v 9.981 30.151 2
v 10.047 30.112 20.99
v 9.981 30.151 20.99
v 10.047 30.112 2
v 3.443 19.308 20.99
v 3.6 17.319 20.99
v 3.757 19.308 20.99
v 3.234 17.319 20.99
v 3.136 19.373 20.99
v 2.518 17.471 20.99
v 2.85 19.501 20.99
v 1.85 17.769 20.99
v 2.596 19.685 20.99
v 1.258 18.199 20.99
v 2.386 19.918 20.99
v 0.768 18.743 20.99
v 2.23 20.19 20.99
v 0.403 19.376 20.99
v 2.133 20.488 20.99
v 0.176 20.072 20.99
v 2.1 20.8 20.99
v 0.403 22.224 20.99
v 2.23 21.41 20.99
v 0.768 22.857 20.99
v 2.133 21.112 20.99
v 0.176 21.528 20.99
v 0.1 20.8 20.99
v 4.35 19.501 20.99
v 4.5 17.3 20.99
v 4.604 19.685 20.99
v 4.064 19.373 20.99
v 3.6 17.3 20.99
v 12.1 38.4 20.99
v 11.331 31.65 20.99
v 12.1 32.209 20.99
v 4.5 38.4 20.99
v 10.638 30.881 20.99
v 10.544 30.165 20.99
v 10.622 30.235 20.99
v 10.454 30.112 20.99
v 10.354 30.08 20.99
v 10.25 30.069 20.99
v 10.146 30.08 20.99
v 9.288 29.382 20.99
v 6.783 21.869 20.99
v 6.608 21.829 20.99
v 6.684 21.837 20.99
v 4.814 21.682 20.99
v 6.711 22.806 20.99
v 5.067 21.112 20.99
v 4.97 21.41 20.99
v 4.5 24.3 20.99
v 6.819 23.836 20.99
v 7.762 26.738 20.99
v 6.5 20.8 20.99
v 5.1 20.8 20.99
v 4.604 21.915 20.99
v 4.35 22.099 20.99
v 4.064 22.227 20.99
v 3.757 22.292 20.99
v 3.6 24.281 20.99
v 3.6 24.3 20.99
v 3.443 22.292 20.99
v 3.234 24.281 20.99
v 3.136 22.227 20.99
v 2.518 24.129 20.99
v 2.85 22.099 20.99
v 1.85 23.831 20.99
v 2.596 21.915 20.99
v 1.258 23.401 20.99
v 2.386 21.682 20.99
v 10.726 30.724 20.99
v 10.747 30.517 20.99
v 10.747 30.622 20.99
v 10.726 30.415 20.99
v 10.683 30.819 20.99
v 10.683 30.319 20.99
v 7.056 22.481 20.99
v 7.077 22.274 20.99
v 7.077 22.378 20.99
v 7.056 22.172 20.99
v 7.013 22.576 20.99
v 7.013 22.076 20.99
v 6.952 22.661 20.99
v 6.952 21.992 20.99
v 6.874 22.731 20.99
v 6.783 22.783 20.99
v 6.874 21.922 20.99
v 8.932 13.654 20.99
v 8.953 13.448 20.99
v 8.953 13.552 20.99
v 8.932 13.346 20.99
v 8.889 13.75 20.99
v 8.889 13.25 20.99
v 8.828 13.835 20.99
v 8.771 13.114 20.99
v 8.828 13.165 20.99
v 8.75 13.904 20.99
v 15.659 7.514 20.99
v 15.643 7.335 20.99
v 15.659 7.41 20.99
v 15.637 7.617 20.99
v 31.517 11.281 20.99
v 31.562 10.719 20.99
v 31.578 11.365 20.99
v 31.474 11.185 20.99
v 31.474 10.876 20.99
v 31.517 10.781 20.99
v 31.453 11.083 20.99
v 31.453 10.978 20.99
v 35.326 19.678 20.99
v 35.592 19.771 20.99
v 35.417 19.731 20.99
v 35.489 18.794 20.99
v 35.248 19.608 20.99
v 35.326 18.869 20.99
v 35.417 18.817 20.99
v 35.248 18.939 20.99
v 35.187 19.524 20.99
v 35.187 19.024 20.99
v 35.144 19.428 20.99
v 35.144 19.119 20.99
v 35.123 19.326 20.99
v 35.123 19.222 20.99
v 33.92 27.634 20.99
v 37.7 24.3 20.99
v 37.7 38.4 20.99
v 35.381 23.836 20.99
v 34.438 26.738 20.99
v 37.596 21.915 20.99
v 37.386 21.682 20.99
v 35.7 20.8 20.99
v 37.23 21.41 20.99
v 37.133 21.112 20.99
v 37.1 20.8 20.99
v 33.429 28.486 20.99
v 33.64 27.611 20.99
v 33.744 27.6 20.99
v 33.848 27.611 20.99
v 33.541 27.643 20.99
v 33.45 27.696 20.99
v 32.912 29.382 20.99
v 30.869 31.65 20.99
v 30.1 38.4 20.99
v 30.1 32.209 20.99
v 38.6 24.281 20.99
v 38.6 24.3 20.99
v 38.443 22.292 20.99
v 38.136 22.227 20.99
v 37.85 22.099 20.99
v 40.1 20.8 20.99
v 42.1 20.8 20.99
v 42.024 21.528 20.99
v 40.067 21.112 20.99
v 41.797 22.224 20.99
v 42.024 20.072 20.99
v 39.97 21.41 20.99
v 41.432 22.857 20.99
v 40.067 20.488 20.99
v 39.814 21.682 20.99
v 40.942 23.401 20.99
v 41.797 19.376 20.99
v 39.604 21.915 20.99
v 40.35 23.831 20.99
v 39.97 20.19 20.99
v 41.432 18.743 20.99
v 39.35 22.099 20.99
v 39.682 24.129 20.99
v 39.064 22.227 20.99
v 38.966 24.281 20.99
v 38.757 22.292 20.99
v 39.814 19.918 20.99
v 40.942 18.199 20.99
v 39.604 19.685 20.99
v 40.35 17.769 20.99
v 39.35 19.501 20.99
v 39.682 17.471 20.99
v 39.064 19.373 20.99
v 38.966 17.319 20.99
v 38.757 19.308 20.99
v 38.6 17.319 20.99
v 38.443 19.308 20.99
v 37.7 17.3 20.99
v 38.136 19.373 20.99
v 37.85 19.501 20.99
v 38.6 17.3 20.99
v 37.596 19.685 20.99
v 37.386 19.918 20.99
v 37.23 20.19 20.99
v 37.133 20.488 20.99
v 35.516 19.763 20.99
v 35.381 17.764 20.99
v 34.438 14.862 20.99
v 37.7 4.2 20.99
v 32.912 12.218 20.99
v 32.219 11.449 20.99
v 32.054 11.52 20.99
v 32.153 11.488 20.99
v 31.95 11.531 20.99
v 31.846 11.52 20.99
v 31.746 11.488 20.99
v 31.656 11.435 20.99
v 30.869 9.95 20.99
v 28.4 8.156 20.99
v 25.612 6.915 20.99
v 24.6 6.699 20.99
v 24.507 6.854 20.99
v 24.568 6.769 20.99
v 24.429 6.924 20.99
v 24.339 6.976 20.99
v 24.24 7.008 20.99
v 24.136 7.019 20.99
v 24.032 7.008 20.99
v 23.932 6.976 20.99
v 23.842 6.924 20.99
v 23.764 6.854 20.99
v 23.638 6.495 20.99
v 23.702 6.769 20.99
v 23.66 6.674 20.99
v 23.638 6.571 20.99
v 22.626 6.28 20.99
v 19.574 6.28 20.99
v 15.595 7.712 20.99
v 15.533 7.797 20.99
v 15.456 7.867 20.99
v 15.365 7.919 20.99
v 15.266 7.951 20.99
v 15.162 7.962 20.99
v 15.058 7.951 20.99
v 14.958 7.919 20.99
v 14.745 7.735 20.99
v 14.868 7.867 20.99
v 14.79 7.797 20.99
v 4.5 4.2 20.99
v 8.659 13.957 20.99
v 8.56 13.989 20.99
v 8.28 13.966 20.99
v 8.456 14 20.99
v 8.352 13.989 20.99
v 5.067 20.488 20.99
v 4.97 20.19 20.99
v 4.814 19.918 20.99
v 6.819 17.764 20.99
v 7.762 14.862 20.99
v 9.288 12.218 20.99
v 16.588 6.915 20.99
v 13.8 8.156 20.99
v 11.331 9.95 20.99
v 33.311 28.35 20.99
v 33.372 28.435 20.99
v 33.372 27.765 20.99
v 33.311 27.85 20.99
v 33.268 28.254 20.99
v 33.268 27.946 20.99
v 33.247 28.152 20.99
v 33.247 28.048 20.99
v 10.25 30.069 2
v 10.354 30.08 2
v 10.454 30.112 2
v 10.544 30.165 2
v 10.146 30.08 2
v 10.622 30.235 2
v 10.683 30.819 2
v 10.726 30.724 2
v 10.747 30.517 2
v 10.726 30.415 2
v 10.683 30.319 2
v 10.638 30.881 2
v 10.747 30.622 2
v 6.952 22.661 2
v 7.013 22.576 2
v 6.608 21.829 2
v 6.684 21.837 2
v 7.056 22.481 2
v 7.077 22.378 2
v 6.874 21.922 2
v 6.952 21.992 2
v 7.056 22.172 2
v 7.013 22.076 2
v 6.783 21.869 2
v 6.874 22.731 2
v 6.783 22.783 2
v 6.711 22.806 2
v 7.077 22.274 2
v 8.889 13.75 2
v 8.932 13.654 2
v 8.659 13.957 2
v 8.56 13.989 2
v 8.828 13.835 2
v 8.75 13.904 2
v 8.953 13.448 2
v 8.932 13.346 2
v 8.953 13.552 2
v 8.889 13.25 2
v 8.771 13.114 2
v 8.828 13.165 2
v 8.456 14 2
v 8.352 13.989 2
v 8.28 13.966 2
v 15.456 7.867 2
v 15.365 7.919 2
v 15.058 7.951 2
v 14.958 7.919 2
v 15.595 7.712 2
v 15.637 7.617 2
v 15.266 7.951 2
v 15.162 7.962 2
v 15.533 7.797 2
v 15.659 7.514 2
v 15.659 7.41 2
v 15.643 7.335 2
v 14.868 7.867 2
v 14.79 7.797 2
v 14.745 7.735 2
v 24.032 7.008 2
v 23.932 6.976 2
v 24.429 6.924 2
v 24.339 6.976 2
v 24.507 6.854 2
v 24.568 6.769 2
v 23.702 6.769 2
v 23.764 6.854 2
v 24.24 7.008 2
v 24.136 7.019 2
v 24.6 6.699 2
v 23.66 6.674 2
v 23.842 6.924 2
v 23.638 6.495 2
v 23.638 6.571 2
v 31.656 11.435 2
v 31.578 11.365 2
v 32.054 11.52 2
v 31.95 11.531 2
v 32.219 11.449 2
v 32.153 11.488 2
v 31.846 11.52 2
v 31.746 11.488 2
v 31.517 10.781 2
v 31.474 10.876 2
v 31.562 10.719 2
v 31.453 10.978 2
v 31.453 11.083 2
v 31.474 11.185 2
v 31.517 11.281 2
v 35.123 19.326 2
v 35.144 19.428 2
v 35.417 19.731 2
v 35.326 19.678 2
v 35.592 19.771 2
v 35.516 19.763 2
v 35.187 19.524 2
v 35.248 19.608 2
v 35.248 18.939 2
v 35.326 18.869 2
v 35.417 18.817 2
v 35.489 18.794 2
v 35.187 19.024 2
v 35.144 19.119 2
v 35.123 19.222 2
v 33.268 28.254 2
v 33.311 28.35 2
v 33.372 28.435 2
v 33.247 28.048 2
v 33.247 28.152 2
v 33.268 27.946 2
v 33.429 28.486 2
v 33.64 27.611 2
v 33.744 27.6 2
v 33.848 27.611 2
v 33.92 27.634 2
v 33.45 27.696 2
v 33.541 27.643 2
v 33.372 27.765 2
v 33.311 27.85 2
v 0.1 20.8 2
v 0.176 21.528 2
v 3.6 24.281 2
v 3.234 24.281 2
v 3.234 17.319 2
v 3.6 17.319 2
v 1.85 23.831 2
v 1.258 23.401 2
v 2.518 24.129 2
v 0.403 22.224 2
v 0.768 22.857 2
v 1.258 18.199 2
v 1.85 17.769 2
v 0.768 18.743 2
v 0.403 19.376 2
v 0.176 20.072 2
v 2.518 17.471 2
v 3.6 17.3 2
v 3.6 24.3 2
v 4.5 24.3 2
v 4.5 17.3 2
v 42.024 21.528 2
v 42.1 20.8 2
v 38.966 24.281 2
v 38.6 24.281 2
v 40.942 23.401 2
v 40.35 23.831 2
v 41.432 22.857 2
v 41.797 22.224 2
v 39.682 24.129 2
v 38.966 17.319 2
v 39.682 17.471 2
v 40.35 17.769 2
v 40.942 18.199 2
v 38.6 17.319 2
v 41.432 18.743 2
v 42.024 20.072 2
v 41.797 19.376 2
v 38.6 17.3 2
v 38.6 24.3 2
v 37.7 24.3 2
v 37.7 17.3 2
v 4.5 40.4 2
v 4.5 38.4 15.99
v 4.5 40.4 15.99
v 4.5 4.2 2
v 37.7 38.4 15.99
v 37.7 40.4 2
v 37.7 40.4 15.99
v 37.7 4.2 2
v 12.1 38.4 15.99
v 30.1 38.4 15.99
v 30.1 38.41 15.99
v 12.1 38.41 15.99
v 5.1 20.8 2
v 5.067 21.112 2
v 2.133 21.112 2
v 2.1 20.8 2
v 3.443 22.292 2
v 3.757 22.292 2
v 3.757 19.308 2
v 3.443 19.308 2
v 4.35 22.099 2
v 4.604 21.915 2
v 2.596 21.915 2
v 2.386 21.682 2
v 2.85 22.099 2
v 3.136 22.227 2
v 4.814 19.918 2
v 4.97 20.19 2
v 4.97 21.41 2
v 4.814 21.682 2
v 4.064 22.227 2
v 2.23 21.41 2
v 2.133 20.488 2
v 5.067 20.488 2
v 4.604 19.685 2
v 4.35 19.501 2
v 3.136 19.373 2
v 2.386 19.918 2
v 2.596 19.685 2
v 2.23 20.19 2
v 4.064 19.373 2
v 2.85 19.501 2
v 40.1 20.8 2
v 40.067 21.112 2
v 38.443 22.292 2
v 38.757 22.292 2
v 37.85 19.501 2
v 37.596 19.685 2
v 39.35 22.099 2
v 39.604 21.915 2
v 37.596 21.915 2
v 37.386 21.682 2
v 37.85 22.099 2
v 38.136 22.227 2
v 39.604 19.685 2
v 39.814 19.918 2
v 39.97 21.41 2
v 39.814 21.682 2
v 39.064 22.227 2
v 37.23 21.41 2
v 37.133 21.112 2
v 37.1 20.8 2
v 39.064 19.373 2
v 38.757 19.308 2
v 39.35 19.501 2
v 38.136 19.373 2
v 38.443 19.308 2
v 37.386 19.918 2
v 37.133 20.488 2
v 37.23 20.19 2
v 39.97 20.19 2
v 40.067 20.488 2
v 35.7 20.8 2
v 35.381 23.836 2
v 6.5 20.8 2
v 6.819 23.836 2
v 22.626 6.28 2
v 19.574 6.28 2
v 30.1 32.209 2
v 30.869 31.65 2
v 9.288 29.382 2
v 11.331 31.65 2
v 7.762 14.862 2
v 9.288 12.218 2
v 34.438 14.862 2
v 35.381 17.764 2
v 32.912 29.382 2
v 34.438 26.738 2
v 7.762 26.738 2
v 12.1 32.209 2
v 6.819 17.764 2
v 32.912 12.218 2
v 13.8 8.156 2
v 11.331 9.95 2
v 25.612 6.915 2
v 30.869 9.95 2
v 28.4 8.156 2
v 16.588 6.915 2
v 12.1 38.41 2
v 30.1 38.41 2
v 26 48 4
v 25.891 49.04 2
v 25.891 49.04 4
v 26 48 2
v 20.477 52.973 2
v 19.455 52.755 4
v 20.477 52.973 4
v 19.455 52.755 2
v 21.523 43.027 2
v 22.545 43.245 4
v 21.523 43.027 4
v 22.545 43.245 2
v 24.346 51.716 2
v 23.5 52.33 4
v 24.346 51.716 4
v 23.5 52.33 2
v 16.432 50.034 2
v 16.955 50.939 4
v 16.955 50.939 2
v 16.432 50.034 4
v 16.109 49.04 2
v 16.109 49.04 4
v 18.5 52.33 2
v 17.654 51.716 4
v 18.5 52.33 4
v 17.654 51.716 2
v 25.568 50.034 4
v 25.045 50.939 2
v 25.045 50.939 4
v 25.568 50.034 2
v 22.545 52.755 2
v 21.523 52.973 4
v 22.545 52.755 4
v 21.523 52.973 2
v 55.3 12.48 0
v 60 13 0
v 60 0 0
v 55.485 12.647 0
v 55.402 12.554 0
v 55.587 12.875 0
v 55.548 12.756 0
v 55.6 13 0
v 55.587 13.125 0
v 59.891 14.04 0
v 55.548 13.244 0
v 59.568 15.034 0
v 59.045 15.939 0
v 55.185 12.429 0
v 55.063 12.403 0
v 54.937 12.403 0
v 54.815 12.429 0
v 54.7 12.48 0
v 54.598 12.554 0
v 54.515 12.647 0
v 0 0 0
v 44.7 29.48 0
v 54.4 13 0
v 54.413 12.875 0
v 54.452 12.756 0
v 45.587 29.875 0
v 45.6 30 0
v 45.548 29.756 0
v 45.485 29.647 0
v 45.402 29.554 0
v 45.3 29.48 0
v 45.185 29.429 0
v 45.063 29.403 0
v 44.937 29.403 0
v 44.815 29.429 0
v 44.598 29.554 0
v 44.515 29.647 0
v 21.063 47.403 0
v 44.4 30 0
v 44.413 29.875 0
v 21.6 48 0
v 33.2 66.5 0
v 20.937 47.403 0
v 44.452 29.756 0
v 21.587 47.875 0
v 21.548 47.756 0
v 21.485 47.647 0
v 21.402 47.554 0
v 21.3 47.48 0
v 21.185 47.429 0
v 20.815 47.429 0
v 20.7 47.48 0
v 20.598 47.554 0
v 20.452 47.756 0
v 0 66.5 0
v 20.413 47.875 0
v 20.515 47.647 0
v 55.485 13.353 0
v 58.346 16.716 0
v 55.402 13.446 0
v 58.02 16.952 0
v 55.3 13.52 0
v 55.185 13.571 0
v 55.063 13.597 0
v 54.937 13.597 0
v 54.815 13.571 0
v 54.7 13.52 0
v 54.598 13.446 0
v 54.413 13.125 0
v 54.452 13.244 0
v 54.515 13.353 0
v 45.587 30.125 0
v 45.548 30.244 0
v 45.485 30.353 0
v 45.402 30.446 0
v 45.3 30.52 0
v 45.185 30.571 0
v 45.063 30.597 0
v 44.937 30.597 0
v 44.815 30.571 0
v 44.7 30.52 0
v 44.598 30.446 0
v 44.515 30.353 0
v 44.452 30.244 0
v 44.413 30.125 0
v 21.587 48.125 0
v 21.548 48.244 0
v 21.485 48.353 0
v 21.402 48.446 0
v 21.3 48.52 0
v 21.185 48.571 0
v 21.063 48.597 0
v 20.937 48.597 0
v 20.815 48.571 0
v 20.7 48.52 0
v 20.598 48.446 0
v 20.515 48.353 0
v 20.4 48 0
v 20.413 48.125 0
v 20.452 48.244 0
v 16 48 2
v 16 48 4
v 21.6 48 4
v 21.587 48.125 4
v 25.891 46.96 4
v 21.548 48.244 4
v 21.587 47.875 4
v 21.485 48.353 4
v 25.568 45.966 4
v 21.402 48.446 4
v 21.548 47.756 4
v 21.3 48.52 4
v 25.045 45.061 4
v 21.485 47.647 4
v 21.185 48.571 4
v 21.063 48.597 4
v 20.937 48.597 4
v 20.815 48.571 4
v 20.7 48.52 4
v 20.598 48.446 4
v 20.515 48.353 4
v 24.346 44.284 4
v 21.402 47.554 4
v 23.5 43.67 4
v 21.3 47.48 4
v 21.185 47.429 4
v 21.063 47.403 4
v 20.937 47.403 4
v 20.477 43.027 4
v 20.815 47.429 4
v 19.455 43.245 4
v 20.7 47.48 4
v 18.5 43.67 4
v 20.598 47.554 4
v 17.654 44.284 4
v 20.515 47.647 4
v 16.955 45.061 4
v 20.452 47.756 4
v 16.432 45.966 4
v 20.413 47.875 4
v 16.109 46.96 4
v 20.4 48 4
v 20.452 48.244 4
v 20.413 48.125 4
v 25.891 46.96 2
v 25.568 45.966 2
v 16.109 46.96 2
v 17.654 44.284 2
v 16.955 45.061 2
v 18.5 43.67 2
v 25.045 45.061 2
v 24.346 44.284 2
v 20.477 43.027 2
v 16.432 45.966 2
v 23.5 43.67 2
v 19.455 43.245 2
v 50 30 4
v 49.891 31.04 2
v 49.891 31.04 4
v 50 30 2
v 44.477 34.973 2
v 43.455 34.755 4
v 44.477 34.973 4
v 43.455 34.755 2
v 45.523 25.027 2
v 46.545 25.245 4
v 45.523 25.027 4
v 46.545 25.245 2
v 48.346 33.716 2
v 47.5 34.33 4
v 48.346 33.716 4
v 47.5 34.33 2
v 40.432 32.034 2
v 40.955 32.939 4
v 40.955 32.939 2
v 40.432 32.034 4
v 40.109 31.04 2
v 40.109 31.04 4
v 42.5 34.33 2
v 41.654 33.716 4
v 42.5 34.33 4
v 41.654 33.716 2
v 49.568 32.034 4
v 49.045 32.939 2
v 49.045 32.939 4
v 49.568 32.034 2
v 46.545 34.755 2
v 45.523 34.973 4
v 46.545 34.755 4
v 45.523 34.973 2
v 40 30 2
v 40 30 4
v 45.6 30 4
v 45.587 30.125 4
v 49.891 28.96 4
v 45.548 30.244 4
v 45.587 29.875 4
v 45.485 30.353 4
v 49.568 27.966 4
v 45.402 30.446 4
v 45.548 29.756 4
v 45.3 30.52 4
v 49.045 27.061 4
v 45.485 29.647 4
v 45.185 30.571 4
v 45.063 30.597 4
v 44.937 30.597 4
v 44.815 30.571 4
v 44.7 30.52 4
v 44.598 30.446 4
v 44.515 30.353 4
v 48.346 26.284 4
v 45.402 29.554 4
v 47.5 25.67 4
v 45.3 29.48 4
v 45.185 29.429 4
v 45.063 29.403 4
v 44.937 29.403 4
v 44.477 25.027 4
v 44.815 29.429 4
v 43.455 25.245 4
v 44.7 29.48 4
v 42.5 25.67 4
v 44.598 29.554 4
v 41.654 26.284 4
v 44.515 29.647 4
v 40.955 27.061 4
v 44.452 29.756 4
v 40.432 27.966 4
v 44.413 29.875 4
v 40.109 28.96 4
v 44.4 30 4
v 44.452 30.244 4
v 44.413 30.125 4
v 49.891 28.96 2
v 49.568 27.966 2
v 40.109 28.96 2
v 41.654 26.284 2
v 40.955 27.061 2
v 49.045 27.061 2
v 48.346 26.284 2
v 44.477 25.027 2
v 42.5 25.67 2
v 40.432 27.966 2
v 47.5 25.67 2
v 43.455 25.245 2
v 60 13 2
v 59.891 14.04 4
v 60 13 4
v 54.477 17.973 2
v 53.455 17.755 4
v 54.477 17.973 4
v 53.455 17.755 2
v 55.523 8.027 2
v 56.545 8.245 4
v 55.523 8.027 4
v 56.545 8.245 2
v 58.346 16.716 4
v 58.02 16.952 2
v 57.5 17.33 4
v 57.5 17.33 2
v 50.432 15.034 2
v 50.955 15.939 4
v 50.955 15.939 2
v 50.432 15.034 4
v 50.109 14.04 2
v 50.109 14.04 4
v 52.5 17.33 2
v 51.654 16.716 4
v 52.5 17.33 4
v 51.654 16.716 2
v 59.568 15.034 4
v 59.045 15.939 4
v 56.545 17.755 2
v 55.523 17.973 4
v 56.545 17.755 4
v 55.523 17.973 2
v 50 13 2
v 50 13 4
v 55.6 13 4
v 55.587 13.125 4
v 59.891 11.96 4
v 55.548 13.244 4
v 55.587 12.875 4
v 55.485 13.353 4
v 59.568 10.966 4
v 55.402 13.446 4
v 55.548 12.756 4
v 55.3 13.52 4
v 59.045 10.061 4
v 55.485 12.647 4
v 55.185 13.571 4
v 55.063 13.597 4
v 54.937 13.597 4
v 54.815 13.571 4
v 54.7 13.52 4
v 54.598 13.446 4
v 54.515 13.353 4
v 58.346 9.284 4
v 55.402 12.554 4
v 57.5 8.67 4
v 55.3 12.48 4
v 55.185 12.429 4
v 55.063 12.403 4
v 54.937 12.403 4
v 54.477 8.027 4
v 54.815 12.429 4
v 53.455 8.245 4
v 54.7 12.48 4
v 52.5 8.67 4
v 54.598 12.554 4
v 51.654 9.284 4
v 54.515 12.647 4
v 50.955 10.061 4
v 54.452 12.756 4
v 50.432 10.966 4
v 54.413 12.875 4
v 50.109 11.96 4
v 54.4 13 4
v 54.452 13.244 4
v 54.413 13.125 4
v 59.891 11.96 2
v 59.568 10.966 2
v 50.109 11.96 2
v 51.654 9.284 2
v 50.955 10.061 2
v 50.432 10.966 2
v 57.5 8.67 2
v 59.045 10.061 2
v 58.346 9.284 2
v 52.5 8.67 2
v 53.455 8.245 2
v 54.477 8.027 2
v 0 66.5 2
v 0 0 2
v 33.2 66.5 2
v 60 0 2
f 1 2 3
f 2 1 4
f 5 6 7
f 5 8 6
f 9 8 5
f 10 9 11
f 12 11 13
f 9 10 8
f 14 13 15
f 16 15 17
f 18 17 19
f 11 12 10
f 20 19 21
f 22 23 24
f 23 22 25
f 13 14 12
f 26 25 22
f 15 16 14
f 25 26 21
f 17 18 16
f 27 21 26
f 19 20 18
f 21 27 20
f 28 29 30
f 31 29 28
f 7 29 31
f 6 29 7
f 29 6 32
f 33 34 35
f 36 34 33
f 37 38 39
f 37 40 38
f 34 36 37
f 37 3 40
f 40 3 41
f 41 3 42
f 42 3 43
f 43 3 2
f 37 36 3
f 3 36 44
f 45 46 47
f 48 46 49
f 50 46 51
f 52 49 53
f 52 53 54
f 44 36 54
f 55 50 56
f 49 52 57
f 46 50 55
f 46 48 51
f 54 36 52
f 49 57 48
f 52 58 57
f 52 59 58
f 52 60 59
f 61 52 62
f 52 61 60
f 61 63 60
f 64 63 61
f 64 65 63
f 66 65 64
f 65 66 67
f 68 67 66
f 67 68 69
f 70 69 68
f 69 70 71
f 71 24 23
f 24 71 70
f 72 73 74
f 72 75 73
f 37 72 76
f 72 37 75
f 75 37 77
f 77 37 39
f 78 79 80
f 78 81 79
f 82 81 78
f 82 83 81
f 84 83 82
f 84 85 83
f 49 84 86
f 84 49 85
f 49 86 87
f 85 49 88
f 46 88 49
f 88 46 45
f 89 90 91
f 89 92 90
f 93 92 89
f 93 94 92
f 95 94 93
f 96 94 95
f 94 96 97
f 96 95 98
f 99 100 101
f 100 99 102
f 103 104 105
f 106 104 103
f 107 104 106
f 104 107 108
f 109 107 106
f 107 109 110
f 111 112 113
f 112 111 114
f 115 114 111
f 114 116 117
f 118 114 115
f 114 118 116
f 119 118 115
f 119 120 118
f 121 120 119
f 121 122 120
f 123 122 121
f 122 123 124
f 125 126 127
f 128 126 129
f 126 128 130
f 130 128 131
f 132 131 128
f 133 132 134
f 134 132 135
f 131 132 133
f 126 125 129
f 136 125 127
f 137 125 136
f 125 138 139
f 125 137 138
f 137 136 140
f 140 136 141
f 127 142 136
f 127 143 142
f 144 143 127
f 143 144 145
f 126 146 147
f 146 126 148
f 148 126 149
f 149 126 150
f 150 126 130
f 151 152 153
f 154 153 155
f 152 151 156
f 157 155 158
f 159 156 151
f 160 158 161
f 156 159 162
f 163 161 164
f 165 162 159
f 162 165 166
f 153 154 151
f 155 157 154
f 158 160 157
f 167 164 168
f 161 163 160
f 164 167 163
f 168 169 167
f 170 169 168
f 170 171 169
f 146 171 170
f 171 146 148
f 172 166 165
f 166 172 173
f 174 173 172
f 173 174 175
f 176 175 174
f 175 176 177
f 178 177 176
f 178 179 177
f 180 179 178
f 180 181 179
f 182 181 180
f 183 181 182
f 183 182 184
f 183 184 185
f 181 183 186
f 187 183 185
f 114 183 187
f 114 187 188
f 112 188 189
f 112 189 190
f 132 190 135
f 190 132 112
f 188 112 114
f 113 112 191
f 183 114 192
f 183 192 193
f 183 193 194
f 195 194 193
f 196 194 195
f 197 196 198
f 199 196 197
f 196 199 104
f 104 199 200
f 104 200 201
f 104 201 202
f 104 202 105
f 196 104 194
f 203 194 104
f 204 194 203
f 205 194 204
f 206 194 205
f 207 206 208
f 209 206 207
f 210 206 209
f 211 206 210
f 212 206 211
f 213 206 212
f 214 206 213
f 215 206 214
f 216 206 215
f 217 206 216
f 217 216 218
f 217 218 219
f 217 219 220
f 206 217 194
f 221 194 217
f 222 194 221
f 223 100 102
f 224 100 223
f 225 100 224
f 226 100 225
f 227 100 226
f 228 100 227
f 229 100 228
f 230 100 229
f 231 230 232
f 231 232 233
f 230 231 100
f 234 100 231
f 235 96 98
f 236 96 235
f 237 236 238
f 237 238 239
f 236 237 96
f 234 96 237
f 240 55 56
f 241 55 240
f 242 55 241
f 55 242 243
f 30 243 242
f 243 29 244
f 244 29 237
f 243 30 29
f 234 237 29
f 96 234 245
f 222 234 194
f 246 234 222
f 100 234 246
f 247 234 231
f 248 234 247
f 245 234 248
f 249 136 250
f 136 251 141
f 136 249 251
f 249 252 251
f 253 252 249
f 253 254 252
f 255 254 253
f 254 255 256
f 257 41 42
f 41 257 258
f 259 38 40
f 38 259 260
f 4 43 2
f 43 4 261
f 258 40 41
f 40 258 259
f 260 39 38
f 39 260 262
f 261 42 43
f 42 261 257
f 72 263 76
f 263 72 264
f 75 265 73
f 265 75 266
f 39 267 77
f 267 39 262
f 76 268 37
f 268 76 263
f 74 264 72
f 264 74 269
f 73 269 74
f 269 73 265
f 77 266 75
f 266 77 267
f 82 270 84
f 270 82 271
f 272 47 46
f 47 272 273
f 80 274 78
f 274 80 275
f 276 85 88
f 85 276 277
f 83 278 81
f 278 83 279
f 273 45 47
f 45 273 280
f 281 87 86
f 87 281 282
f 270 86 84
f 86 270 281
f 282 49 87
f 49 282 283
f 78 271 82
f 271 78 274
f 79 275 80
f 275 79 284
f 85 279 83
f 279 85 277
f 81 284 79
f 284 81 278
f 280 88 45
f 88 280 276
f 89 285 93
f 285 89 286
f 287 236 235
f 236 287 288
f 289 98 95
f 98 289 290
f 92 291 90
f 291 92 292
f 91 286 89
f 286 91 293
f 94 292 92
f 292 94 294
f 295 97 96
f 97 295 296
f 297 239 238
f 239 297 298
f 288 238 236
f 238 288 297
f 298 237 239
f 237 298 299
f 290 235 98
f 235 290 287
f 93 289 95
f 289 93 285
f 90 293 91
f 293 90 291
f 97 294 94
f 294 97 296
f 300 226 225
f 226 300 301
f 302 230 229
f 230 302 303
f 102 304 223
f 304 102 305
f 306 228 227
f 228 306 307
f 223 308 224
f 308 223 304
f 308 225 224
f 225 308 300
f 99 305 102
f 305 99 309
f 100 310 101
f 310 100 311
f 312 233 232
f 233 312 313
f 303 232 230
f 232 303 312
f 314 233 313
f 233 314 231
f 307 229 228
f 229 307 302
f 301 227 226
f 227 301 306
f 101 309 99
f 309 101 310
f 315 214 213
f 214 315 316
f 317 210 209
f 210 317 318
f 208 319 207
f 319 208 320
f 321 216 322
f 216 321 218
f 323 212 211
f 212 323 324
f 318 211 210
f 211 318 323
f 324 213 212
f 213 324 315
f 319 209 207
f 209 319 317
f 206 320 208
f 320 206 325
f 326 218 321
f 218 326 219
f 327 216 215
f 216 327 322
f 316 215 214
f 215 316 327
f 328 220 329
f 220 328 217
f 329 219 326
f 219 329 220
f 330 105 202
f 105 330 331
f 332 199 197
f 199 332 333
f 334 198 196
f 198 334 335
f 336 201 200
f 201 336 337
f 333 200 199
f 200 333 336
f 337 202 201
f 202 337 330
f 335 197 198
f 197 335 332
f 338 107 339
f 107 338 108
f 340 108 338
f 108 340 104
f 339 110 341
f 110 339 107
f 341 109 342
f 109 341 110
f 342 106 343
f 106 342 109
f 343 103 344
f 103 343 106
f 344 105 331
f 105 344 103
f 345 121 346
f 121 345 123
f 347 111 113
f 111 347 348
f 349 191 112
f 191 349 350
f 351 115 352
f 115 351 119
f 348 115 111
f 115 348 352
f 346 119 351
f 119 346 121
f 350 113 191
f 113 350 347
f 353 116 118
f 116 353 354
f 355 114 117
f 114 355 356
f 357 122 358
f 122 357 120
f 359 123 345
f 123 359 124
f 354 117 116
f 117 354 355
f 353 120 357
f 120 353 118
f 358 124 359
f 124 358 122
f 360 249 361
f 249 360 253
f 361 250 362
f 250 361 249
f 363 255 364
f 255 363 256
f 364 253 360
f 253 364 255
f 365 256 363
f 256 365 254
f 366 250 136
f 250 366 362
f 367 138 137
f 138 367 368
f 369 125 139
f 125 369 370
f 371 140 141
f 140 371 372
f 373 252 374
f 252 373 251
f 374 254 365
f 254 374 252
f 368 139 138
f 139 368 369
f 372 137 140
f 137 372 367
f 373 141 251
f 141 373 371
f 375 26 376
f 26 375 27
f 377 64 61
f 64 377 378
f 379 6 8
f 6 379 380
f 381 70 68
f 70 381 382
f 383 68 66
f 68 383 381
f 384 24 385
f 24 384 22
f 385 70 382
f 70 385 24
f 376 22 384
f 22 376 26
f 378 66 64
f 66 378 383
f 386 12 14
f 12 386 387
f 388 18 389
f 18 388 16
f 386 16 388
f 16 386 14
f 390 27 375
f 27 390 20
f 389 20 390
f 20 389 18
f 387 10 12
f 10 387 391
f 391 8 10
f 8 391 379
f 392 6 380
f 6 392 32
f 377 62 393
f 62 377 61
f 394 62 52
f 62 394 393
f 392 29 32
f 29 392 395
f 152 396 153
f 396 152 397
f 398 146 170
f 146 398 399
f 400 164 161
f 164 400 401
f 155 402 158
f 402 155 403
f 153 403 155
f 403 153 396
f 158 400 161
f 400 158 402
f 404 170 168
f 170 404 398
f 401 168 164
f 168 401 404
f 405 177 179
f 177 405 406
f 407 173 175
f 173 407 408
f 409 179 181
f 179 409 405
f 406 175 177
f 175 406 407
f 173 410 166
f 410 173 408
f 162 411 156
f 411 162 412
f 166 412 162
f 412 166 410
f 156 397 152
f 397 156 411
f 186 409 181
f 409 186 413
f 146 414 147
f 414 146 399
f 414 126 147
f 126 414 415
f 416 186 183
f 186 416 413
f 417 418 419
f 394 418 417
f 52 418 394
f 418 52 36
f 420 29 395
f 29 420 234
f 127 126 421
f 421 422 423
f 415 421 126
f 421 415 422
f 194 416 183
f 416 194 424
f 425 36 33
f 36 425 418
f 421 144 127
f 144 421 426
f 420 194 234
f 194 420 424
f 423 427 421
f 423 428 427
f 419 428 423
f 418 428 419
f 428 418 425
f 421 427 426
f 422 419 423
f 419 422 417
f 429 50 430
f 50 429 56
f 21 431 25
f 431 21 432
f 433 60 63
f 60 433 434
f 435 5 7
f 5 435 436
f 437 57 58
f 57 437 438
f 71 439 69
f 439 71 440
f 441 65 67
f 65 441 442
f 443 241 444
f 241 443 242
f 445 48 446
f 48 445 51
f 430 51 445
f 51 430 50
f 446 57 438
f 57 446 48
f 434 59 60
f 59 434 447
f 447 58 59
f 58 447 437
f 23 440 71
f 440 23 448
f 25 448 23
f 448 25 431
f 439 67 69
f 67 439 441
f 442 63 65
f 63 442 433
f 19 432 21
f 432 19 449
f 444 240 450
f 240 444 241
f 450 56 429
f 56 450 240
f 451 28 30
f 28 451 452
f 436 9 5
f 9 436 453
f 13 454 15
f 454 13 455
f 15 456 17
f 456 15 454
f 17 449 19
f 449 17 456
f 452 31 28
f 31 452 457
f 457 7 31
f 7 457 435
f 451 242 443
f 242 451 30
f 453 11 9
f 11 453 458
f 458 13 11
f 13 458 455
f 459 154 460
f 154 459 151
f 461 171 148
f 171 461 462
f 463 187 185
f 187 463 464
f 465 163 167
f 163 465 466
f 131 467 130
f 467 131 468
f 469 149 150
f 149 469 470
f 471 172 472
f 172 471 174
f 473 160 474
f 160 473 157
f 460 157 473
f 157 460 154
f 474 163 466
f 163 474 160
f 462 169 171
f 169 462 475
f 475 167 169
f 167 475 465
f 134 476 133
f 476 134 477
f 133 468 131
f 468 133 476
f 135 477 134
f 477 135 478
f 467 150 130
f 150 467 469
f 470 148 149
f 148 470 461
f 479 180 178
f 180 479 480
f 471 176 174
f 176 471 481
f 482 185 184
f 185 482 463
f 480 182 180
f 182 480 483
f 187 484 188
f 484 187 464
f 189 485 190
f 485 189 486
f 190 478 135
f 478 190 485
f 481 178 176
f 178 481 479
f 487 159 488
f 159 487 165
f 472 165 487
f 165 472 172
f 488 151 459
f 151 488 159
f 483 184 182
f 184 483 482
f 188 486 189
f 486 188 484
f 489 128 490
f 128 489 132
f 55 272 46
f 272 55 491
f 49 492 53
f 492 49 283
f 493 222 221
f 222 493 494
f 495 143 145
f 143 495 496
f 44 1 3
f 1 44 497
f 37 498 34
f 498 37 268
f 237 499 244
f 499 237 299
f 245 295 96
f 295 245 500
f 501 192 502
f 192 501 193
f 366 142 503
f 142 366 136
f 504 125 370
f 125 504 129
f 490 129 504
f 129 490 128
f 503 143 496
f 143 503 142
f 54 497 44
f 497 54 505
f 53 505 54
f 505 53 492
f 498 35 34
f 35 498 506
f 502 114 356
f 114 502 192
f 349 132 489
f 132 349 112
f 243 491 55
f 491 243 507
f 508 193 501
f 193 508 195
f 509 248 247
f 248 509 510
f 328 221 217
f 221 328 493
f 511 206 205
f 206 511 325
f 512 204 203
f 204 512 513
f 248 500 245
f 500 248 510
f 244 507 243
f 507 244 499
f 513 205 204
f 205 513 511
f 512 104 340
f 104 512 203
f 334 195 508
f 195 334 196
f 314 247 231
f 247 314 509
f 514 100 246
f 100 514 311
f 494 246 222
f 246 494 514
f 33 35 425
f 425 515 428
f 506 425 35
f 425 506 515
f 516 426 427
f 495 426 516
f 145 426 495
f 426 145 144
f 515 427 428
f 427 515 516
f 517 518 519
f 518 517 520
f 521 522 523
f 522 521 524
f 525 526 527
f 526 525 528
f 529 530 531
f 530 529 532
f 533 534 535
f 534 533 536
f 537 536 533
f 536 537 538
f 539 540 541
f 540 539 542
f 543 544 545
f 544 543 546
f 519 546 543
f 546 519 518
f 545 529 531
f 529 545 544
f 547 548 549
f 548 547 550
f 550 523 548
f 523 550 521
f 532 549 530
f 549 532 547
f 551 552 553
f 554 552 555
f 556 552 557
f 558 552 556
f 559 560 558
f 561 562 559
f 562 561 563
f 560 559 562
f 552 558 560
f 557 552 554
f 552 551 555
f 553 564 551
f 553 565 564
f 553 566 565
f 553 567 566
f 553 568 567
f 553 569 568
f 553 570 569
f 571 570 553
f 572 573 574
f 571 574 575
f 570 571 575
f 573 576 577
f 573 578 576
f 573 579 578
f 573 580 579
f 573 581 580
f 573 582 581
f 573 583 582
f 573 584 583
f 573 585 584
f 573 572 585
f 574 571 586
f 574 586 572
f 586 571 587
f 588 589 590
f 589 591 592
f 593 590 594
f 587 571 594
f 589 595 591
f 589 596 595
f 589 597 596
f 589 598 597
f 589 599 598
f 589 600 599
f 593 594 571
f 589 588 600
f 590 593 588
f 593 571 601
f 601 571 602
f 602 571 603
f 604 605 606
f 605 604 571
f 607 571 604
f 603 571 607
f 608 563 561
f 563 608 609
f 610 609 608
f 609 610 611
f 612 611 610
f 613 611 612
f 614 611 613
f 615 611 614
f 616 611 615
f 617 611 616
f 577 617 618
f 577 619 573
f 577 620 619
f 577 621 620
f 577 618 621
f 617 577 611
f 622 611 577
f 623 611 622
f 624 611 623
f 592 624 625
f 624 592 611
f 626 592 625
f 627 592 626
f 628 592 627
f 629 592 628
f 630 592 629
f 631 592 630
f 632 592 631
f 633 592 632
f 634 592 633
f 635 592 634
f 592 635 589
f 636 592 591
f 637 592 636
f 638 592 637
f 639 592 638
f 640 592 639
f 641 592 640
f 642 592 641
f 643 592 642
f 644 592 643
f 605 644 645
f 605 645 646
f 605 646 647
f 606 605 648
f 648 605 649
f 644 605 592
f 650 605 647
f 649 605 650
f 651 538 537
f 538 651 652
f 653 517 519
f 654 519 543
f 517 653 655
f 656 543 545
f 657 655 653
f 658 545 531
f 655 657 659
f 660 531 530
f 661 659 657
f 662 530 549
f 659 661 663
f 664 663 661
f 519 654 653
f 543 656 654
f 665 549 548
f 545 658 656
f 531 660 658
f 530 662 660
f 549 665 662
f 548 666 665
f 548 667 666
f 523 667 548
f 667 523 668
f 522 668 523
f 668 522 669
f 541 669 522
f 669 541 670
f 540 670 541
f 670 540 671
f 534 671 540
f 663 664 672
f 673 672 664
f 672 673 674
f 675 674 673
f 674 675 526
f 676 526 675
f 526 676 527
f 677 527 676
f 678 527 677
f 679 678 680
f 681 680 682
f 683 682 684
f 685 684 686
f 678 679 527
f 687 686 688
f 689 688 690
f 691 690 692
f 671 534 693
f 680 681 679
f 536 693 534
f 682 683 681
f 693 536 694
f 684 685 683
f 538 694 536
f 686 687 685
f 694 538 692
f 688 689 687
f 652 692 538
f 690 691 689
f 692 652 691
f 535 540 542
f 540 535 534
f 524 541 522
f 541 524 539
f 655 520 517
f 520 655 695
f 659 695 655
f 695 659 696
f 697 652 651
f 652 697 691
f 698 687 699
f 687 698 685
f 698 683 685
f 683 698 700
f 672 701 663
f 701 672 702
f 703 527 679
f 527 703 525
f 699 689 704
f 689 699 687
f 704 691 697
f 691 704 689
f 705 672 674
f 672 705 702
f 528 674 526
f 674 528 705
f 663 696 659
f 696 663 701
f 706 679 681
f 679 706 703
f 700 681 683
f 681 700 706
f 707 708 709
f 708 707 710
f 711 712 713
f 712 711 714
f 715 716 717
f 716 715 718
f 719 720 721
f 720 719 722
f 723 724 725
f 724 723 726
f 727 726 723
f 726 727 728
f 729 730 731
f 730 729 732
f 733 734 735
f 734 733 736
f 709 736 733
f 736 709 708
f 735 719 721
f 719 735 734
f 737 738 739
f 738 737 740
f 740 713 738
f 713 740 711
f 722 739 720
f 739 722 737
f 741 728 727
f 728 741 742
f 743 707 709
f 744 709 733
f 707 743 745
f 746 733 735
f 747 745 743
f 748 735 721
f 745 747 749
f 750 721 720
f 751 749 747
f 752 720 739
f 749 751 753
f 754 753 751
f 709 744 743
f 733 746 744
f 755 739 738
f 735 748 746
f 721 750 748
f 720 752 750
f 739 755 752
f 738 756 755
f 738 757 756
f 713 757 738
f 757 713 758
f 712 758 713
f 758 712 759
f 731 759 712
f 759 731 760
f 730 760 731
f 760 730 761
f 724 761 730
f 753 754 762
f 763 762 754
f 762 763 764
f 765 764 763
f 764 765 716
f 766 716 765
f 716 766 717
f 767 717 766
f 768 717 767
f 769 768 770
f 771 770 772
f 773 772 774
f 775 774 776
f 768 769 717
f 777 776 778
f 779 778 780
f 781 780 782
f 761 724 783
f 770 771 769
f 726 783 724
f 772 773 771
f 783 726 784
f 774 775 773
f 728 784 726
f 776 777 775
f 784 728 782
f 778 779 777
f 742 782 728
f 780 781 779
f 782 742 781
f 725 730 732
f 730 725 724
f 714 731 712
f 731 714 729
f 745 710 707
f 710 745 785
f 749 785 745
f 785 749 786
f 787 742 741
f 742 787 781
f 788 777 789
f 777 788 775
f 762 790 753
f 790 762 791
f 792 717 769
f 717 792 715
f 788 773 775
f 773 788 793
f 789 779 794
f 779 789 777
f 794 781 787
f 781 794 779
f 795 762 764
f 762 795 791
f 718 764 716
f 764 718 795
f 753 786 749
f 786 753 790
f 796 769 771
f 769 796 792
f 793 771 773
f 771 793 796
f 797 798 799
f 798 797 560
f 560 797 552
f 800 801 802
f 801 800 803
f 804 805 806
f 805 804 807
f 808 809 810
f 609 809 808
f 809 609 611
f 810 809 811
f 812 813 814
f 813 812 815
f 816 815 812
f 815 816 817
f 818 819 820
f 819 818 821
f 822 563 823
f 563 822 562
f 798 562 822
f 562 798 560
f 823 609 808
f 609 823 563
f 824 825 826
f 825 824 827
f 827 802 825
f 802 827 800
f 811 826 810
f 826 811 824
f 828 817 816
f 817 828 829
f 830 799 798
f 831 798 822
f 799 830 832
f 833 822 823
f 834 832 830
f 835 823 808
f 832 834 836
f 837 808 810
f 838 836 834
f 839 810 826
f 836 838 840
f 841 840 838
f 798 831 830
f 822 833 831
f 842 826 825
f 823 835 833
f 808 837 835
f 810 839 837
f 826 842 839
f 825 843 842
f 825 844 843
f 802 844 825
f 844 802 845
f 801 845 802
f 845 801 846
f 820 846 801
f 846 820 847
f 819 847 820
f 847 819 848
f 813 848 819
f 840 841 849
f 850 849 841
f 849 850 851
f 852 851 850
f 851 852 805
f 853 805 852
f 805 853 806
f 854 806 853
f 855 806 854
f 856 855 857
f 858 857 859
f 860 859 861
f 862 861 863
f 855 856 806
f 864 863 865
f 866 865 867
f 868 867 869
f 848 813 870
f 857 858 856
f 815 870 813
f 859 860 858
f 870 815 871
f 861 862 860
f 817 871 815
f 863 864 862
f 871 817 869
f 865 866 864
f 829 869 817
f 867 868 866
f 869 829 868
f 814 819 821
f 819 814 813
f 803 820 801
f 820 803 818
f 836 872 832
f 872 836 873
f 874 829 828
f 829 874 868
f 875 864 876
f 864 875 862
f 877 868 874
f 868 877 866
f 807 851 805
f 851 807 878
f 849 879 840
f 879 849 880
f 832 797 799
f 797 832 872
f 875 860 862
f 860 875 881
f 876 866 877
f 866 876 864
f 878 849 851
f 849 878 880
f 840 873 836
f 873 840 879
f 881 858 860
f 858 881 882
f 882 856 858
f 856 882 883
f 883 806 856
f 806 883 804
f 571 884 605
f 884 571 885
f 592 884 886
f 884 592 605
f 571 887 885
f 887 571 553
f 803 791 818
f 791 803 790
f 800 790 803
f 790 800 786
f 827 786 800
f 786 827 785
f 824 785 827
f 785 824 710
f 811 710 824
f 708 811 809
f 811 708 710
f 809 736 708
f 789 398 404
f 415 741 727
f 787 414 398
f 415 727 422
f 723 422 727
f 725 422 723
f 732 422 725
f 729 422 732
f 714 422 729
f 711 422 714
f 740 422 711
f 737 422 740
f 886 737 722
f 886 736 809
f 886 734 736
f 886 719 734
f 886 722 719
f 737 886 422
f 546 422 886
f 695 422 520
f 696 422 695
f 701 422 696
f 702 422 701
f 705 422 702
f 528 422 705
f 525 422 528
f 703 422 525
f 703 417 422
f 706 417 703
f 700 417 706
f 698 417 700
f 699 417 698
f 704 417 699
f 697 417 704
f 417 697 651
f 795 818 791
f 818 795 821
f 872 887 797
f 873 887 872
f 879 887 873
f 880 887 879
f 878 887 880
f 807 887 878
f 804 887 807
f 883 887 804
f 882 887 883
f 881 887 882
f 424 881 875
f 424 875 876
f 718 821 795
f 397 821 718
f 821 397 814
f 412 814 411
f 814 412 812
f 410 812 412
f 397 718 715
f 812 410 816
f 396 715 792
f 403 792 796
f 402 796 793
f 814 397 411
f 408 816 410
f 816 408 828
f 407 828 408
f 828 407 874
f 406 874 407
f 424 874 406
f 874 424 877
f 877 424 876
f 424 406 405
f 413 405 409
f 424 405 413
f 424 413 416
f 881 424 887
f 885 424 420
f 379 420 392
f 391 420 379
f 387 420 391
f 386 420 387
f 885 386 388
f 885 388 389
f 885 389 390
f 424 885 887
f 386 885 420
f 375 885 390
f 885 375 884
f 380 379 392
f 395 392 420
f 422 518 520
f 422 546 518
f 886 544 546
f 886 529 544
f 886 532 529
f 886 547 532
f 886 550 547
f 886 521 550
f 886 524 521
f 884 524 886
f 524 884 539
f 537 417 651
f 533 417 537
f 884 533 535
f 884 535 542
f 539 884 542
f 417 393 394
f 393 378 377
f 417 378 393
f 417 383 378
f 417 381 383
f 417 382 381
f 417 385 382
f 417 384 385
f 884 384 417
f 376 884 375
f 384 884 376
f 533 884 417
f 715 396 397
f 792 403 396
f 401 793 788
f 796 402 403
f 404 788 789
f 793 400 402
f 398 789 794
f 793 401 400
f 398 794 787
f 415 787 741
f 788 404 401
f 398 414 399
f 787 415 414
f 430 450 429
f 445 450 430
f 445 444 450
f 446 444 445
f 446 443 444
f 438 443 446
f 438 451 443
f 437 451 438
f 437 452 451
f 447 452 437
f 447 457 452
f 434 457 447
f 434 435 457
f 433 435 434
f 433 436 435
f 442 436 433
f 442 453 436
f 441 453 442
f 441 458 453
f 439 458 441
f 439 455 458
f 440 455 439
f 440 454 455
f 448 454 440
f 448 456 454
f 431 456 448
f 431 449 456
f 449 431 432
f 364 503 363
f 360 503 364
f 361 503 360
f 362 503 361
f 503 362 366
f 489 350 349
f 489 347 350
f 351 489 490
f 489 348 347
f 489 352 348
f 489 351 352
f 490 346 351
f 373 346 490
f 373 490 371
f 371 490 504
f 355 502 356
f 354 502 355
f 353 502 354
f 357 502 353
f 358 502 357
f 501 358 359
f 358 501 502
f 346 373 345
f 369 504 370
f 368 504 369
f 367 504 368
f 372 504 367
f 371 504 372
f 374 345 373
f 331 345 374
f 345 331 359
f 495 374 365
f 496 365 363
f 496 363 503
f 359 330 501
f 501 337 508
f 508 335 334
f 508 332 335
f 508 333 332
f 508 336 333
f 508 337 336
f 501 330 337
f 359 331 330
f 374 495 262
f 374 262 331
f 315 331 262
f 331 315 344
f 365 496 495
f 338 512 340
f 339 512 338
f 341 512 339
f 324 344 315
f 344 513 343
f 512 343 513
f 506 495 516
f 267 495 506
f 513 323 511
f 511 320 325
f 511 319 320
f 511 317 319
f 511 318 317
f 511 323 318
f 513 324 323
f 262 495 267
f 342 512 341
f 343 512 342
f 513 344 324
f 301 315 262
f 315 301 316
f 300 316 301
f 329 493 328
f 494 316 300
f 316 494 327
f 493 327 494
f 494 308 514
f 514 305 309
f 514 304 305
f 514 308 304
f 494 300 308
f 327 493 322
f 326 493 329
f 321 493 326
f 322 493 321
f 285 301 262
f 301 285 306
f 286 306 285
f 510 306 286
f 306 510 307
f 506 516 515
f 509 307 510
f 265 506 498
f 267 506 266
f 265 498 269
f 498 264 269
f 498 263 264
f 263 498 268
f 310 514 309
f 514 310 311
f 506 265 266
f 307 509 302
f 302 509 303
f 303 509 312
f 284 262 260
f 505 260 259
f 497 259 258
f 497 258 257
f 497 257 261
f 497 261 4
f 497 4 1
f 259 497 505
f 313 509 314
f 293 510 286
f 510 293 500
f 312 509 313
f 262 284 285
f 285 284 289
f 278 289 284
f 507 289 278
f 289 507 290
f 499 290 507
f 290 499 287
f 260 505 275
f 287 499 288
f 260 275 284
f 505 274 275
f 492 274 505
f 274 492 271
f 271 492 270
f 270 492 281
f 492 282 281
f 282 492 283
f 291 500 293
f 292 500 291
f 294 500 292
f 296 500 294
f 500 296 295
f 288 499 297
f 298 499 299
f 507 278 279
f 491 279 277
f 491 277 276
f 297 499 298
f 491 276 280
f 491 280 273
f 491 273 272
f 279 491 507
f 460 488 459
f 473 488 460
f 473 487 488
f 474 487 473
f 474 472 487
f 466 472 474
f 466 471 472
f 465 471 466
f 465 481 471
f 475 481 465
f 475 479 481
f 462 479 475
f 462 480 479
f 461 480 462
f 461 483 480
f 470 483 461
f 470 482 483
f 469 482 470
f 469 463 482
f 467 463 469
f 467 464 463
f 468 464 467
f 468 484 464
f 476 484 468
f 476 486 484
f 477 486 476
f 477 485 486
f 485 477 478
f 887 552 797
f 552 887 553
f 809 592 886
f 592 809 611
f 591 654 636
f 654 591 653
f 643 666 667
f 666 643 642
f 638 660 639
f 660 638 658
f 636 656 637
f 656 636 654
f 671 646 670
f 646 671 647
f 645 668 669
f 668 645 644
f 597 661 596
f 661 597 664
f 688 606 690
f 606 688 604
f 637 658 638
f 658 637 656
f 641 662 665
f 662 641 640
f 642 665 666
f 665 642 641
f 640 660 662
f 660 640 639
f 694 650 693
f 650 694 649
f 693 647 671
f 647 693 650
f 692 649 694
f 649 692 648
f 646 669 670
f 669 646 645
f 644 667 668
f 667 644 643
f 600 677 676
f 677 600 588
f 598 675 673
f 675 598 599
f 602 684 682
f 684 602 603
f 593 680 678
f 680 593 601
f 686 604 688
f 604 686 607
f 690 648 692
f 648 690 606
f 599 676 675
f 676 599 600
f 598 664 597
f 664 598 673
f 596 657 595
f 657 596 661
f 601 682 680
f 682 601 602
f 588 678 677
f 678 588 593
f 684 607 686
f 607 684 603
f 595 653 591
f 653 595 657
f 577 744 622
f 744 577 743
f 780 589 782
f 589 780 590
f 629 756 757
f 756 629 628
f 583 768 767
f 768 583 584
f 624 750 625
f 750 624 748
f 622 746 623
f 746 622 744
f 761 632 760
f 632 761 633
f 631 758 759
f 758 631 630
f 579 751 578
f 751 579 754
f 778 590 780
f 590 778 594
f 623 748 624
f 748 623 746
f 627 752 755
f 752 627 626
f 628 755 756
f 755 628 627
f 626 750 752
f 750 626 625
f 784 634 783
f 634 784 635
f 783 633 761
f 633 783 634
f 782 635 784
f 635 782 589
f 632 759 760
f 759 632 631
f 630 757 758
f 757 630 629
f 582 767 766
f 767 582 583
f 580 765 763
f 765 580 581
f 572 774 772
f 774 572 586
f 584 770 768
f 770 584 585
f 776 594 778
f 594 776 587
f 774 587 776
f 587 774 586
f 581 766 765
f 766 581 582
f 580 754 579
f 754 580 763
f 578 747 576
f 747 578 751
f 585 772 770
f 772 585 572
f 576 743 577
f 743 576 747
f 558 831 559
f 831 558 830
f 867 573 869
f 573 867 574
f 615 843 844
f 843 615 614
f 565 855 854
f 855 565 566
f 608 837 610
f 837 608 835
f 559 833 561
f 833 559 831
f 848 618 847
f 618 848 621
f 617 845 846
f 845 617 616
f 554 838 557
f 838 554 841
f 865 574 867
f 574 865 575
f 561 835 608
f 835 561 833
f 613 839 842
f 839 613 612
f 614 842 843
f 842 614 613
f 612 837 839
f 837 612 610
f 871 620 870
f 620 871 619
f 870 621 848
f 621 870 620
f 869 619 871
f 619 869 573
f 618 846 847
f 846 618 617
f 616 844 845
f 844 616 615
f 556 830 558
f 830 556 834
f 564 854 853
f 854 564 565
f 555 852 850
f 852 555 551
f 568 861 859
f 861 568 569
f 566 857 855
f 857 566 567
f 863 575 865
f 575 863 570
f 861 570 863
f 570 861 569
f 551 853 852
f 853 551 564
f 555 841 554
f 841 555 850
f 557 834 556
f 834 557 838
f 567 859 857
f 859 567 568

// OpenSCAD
mm = 1; 

slop = 0.5*mm;
ribs=10;

$fn=30;
stepper_rad = 14.1*mm+slop;
stepper_height = 19*mm;
wall = 2*mm;
width = (stepper_rad+wall)*2;

wiring_cutout = 18*mm;
wiring_depth = 3*mm;
wiring_height = 14*mm; // made-up number
pin_inset = 3*mm;
pin_rad = 0.4*mm;
eps=0.01;

hole_offset = 17.5*mm; // made-up number
hole_rad = 1.5*mm; // made_up_number
hole_outer_rad = hole_rad+wall;

module motor_block() {
    union() {
        for(rib=[1:ribs-2]) {
            rotate([0,0,360/ribs * (rib-1)+138])
            
            translate([stepper_rad,0,0])
            cylinder(r=slop, h=stepper_height);
        }
        
        difference() {
            union() {
                translate([-width/2,-width/2,0])
                cube([width, wall+2*stepper_rad+wiring_depth, stepper_height]);
                
                translate([-width/2,stepper_rad+wiring_depth,0])
                cube([width, wall, wiring_height]);
                
                for(side = [-1,1]){
                    translate([side*hole_offset,0,0])
                    cylinder(r=hole_outer_rad,h=stepper_height);
                    translate([side*(hole_offset-hole_outer_rad/2),0,0])
                    translate([-hole_outer_rad/2,-hole_outer_rad,0])
                    cube([hole_outer_rad,2*hole_outer_rad,stepper_height]);
                }
                
            }
            union() {
                translate([0,0,-eps])
                cylinder(r=stepper_rad, h=stepper_height+2*eps);
                
                
                color("red")
                translate([-wiring_cutout/2,0,-eps])
                cube([wiring_cutout,stepper_rad+wiring_depth+eps,stepper_height+2*eps]);
                for(side = [-1,1]){
                    translate([side*hole_offset,0,-eps])
                    cylinder(r=hole_rad,h=stepper_height+2*eps);
                }
            }
        }
    }
}





eyelet_x = 55*mm;
eyelet_y = 13*mm;
pin_x = [21*mm, 45*mm, eyelet_x];
pin_y = [48*mm, 30*mm, eyelet_y];
pin_rad = 0.6*mm;
pin_plinth_rad= 5*mm;
pin_plinth_height=4*mm;
plate_th=2*mm;

plate_y = 66.5*mm;
plate_x = eyelet_x + pin_plinth_rad;

motor_block_inset = 4.5*mm;

tab_width = 4.2*mm;
plate_points = [
    [0,0], 
    [0,plate_y], 
    [width, plate_y], 
    [eyelet_x+pin_plinth_rad, eyelet_y],
    [eyelet_x+pin_plinth_rad,0],
    [0,0]
];


module motor_mount() {
    difference(){
        union(){
                    
            color("green")
            linear_extrude(height=plate_th) 
            polygon(plate_points);
            translate([width/2 + motor_block_inset, width/2 + tab_width, plate_th-eps])
            motor_block();
            for(i=[0:2]) {
                translate([pin_x[i], pin_y[i], 0])
                cylinder(r=pin_plinth_rad, h=pin_plinth_height);
            }
        }
        union(){
            for(i=[0:2]) {
                translate([pin_x[i], pin_y[i], -eps])
                cylinder(r=pin_rad, h=pin_plinth_height+2*eps);
            }
        }
    }
}

motor_mount();
